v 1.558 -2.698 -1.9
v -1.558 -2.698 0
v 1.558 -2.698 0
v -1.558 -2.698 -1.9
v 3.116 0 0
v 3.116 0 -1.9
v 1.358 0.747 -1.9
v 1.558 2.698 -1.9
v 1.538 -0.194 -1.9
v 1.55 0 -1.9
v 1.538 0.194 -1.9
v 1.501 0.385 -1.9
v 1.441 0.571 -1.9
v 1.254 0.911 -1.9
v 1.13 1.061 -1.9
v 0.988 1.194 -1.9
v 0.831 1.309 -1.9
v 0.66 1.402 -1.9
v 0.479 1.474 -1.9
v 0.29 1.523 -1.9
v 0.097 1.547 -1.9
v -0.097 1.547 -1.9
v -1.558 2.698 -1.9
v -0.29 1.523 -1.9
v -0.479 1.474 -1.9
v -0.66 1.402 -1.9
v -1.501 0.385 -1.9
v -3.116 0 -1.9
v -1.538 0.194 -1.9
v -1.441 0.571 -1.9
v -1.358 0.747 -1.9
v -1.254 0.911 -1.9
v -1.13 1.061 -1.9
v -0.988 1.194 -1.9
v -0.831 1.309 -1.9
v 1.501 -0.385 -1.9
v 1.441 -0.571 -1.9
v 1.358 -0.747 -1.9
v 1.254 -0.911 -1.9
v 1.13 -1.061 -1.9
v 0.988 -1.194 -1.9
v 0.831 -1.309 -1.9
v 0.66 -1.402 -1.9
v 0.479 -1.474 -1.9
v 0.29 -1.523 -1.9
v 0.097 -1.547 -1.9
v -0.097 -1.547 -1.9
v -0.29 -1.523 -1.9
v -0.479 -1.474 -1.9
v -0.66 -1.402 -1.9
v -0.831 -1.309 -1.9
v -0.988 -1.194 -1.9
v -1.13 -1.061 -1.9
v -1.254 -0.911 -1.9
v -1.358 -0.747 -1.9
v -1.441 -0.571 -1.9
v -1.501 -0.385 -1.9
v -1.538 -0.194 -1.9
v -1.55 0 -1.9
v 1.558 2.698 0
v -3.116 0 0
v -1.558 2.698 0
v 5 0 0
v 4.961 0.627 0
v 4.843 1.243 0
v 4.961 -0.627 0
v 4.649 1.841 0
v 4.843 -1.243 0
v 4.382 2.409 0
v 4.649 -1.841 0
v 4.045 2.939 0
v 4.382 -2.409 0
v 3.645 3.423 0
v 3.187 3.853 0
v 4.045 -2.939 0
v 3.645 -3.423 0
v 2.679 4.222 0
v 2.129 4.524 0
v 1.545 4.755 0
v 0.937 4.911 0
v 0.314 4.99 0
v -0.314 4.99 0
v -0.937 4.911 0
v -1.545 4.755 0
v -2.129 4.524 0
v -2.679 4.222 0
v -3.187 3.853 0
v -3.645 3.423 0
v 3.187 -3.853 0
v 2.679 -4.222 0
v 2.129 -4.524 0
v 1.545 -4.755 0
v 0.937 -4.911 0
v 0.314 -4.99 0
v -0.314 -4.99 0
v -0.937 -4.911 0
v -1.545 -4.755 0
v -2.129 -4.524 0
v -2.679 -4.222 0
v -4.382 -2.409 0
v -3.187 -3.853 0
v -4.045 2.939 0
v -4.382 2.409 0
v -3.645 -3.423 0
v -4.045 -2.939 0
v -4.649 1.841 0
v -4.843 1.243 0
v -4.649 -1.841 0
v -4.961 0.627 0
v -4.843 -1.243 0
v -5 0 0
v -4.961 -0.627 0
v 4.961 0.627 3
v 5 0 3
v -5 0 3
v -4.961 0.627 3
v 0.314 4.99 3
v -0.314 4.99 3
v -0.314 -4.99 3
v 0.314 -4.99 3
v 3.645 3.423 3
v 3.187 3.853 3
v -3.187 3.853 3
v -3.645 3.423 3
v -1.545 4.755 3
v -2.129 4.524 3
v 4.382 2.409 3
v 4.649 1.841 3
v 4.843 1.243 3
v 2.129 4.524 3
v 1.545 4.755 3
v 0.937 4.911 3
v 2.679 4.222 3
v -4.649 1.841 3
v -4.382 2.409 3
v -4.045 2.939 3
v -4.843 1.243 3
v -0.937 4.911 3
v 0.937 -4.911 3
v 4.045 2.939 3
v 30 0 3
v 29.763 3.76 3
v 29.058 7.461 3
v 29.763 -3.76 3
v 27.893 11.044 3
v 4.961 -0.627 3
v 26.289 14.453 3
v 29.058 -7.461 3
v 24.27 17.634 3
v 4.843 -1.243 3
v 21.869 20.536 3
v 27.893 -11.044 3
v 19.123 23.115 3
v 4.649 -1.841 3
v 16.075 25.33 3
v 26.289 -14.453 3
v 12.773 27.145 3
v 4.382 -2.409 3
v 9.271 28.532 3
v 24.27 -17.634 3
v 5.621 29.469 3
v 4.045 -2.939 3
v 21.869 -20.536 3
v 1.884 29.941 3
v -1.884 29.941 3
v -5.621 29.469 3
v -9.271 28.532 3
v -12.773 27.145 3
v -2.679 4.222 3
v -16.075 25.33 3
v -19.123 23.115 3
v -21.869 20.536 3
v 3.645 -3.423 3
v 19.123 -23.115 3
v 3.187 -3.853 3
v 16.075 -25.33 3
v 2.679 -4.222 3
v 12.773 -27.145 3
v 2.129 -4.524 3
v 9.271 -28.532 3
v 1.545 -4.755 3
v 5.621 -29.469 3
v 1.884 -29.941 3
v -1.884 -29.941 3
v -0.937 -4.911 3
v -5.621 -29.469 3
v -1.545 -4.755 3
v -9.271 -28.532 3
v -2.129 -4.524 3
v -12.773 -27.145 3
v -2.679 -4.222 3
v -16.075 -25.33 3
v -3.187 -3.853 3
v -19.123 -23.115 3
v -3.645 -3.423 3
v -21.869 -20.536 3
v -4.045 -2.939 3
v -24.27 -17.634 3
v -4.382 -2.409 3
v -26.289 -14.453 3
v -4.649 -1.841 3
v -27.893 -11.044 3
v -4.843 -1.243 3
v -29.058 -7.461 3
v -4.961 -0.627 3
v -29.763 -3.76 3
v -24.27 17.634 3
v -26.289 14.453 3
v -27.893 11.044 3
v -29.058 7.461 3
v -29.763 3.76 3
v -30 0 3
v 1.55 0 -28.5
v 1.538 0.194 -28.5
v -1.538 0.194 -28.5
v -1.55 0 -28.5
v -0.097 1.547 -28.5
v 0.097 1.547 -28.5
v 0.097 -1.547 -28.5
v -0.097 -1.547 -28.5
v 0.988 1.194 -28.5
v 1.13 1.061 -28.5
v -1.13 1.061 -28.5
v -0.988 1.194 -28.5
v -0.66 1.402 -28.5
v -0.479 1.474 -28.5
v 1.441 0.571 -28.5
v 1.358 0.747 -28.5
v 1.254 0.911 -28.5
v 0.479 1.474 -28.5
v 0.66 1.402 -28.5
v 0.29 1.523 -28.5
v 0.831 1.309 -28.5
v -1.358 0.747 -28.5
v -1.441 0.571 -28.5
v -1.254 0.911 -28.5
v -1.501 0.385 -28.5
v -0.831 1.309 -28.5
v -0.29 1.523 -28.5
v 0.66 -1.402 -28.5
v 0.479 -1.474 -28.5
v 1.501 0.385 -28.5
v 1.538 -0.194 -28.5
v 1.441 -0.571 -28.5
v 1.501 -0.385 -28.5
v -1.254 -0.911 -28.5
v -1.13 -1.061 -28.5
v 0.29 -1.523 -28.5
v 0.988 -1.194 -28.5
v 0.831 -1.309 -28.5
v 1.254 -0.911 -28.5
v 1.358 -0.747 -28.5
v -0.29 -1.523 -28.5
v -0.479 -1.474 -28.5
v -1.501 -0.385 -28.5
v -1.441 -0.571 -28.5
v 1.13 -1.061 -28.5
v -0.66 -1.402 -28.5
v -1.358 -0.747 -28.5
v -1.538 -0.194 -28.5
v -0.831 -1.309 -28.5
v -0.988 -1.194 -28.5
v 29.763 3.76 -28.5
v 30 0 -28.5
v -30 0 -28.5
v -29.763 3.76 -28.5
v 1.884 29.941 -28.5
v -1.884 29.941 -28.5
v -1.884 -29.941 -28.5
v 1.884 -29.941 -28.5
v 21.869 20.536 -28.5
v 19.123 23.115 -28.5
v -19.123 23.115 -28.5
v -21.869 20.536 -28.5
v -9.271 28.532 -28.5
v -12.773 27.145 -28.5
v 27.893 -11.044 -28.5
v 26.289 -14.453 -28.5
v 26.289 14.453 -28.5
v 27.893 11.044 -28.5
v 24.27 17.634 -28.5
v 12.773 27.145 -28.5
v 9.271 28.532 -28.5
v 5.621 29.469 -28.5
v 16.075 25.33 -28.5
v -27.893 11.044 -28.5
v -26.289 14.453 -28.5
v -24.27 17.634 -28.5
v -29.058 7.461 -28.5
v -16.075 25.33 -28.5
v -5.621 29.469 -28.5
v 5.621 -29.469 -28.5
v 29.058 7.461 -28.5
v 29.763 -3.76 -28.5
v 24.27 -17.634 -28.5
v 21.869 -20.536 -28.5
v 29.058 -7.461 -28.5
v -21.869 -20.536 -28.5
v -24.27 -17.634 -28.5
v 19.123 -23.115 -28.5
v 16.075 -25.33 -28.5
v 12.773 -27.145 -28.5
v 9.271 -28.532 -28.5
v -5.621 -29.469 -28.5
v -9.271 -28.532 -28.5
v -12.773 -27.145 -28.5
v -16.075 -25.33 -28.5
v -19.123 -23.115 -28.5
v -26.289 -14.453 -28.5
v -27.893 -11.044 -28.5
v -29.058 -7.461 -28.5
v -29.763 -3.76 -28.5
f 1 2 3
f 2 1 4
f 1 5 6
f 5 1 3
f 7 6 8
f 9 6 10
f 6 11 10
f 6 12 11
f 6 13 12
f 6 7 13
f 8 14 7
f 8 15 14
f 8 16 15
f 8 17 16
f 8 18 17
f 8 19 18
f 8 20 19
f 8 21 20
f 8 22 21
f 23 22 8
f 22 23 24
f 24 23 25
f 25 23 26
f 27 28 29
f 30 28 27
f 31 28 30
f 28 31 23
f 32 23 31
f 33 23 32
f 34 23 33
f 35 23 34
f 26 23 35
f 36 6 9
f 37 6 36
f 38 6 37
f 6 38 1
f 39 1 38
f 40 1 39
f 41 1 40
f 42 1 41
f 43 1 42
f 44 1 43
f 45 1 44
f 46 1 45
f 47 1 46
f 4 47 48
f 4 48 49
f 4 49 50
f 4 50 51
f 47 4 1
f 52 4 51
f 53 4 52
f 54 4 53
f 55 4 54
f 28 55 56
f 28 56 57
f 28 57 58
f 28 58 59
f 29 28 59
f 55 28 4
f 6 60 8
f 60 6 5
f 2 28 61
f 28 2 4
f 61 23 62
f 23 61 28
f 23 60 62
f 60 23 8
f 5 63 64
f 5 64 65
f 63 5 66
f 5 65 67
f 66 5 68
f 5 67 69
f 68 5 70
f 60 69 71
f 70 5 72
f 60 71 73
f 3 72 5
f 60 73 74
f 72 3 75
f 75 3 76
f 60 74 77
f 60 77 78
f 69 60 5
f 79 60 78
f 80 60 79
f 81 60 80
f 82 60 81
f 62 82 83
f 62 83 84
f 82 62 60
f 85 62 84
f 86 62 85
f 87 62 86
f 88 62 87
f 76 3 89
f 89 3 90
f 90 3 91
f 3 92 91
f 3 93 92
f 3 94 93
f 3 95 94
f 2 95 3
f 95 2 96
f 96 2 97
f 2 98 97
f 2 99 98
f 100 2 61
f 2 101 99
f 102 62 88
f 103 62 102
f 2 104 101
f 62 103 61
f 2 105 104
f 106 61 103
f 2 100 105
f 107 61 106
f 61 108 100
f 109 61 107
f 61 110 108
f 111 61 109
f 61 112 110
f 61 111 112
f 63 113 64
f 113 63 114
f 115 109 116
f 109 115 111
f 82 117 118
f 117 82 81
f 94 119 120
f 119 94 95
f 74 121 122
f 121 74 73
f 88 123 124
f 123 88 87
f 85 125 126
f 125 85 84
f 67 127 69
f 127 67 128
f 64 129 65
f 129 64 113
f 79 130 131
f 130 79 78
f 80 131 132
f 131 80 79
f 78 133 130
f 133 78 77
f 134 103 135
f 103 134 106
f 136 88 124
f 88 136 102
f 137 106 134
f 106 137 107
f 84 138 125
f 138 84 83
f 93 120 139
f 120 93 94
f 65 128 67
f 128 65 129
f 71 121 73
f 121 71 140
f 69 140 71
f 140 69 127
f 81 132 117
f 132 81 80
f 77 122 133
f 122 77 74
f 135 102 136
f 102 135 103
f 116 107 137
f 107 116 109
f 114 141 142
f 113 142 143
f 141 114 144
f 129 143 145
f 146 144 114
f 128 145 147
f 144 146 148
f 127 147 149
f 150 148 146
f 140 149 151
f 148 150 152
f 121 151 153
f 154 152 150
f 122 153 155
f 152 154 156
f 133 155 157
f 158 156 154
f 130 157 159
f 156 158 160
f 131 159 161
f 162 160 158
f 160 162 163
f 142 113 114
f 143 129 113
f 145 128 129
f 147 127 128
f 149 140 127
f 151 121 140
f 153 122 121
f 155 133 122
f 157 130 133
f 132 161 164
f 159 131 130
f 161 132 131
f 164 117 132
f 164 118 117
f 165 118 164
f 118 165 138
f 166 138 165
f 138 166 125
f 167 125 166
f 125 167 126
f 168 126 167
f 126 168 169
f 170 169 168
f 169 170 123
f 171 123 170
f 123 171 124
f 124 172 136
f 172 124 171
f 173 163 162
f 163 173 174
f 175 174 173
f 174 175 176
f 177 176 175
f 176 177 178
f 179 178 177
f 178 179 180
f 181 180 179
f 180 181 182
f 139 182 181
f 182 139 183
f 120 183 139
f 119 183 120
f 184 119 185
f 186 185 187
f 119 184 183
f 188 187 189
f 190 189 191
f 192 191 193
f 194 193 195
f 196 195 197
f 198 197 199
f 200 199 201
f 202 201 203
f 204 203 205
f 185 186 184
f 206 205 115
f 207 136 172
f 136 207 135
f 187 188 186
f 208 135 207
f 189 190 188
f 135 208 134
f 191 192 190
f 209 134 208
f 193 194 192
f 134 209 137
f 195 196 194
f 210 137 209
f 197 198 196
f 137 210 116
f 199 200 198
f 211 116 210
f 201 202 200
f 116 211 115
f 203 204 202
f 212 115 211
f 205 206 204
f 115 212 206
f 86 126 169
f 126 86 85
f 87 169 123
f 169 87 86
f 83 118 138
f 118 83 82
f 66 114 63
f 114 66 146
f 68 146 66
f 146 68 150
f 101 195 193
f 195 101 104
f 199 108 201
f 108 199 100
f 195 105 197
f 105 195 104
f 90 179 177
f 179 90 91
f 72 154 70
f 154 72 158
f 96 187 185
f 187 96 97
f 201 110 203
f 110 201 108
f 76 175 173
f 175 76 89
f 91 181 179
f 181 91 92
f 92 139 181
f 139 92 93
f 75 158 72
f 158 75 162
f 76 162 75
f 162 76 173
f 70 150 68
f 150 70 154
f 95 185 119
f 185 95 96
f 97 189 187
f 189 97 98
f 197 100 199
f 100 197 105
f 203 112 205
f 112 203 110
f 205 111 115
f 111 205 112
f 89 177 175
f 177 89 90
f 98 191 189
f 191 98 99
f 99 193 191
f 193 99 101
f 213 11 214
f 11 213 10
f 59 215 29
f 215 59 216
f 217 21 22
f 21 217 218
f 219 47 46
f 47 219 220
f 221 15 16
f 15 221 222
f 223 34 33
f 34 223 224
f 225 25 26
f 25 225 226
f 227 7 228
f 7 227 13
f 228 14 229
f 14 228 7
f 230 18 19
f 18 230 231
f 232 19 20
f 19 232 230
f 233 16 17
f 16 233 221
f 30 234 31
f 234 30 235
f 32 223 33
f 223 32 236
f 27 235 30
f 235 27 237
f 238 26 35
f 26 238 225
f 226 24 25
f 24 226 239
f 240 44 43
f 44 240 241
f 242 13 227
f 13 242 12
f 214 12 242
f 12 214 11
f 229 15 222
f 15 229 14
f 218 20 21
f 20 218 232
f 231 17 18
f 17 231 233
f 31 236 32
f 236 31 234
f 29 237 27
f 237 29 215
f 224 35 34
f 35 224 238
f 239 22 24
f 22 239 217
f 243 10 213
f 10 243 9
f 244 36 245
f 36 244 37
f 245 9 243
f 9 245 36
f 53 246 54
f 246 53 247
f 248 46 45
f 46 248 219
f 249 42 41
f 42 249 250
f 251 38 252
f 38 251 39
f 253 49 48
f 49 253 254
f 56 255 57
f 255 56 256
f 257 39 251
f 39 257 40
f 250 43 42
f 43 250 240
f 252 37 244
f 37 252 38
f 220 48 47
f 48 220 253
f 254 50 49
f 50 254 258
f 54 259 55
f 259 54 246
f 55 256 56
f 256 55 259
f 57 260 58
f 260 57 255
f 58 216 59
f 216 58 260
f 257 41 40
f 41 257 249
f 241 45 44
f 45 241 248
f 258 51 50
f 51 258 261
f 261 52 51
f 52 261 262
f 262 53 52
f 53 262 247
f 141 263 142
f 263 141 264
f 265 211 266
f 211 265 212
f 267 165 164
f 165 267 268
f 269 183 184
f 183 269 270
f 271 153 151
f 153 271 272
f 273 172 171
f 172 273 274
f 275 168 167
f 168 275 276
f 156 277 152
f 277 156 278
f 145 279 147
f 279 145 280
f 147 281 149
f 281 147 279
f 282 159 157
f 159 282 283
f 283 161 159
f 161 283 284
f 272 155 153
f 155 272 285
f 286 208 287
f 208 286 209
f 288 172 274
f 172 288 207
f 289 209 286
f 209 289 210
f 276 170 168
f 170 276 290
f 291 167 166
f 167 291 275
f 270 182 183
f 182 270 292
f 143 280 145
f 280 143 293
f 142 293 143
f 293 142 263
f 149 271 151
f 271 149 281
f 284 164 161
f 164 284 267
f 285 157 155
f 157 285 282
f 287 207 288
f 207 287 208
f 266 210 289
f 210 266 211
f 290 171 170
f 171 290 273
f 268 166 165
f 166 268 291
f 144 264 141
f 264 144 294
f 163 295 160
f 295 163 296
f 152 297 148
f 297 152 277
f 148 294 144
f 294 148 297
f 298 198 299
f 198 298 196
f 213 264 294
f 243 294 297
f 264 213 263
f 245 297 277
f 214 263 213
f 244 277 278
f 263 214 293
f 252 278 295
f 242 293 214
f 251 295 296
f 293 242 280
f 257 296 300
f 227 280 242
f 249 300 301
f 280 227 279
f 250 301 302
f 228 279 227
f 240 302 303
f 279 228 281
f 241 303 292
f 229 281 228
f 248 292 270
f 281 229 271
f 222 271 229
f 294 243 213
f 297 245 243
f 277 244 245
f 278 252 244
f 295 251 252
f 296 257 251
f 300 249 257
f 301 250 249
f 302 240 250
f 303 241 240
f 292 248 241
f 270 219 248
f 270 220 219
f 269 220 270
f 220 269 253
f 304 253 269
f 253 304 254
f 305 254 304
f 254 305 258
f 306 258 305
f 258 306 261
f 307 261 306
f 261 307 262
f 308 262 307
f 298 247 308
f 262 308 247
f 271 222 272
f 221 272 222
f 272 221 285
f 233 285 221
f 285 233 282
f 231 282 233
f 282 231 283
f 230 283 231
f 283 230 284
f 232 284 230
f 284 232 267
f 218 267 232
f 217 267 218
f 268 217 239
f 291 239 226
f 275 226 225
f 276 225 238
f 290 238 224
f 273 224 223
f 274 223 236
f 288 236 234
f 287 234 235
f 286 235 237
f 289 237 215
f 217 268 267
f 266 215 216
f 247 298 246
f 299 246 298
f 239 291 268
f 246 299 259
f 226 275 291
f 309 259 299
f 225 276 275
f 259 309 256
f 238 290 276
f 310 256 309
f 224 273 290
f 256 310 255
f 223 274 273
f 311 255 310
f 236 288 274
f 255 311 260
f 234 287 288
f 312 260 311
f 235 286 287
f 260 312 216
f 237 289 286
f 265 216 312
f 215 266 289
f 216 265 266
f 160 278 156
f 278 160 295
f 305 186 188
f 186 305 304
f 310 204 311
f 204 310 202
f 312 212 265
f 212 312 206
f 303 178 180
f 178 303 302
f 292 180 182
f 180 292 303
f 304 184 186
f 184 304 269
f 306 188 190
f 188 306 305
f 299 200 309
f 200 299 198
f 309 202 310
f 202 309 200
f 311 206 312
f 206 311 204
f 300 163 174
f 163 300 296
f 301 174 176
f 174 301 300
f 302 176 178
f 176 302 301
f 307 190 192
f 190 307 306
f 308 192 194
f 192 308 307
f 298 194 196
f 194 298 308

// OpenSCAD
$fn = 50;


difference() {
	union() {
		translate(v = [0, 0, -28.5000000000]) {
			cylinder(h = 31.5000000000, r = 30.0000000000);
		}
	}
	union() {
		translate(v = [0, 0, 0]) {
			rotate(a = [0, 0, 0]) {
				difference() {
					union() {
						translate(v = [0, 0, -1.9000000000]) {
							linear_extrude(height = 1.9000000000) {
								polygon(points = [[3.1158000000, 0.0000000000], [1.5579000000, 2.6983619531], [-1.5579000000, 2.6983619531], [-3.1158000000, 0.0000000000], [-1.5579000000, -2.6983619531], [1.5579000000, -2.6983619531]]);
							}
						}
					}
					union();
				}
			}
		}
		#cylinder(h = 3, r = 5.0000000000);
		#translate(v = [0, 0, -100.0000000000]) {
			cylinder(h = 200, r = 1.5500000000);
		}
	}
}
